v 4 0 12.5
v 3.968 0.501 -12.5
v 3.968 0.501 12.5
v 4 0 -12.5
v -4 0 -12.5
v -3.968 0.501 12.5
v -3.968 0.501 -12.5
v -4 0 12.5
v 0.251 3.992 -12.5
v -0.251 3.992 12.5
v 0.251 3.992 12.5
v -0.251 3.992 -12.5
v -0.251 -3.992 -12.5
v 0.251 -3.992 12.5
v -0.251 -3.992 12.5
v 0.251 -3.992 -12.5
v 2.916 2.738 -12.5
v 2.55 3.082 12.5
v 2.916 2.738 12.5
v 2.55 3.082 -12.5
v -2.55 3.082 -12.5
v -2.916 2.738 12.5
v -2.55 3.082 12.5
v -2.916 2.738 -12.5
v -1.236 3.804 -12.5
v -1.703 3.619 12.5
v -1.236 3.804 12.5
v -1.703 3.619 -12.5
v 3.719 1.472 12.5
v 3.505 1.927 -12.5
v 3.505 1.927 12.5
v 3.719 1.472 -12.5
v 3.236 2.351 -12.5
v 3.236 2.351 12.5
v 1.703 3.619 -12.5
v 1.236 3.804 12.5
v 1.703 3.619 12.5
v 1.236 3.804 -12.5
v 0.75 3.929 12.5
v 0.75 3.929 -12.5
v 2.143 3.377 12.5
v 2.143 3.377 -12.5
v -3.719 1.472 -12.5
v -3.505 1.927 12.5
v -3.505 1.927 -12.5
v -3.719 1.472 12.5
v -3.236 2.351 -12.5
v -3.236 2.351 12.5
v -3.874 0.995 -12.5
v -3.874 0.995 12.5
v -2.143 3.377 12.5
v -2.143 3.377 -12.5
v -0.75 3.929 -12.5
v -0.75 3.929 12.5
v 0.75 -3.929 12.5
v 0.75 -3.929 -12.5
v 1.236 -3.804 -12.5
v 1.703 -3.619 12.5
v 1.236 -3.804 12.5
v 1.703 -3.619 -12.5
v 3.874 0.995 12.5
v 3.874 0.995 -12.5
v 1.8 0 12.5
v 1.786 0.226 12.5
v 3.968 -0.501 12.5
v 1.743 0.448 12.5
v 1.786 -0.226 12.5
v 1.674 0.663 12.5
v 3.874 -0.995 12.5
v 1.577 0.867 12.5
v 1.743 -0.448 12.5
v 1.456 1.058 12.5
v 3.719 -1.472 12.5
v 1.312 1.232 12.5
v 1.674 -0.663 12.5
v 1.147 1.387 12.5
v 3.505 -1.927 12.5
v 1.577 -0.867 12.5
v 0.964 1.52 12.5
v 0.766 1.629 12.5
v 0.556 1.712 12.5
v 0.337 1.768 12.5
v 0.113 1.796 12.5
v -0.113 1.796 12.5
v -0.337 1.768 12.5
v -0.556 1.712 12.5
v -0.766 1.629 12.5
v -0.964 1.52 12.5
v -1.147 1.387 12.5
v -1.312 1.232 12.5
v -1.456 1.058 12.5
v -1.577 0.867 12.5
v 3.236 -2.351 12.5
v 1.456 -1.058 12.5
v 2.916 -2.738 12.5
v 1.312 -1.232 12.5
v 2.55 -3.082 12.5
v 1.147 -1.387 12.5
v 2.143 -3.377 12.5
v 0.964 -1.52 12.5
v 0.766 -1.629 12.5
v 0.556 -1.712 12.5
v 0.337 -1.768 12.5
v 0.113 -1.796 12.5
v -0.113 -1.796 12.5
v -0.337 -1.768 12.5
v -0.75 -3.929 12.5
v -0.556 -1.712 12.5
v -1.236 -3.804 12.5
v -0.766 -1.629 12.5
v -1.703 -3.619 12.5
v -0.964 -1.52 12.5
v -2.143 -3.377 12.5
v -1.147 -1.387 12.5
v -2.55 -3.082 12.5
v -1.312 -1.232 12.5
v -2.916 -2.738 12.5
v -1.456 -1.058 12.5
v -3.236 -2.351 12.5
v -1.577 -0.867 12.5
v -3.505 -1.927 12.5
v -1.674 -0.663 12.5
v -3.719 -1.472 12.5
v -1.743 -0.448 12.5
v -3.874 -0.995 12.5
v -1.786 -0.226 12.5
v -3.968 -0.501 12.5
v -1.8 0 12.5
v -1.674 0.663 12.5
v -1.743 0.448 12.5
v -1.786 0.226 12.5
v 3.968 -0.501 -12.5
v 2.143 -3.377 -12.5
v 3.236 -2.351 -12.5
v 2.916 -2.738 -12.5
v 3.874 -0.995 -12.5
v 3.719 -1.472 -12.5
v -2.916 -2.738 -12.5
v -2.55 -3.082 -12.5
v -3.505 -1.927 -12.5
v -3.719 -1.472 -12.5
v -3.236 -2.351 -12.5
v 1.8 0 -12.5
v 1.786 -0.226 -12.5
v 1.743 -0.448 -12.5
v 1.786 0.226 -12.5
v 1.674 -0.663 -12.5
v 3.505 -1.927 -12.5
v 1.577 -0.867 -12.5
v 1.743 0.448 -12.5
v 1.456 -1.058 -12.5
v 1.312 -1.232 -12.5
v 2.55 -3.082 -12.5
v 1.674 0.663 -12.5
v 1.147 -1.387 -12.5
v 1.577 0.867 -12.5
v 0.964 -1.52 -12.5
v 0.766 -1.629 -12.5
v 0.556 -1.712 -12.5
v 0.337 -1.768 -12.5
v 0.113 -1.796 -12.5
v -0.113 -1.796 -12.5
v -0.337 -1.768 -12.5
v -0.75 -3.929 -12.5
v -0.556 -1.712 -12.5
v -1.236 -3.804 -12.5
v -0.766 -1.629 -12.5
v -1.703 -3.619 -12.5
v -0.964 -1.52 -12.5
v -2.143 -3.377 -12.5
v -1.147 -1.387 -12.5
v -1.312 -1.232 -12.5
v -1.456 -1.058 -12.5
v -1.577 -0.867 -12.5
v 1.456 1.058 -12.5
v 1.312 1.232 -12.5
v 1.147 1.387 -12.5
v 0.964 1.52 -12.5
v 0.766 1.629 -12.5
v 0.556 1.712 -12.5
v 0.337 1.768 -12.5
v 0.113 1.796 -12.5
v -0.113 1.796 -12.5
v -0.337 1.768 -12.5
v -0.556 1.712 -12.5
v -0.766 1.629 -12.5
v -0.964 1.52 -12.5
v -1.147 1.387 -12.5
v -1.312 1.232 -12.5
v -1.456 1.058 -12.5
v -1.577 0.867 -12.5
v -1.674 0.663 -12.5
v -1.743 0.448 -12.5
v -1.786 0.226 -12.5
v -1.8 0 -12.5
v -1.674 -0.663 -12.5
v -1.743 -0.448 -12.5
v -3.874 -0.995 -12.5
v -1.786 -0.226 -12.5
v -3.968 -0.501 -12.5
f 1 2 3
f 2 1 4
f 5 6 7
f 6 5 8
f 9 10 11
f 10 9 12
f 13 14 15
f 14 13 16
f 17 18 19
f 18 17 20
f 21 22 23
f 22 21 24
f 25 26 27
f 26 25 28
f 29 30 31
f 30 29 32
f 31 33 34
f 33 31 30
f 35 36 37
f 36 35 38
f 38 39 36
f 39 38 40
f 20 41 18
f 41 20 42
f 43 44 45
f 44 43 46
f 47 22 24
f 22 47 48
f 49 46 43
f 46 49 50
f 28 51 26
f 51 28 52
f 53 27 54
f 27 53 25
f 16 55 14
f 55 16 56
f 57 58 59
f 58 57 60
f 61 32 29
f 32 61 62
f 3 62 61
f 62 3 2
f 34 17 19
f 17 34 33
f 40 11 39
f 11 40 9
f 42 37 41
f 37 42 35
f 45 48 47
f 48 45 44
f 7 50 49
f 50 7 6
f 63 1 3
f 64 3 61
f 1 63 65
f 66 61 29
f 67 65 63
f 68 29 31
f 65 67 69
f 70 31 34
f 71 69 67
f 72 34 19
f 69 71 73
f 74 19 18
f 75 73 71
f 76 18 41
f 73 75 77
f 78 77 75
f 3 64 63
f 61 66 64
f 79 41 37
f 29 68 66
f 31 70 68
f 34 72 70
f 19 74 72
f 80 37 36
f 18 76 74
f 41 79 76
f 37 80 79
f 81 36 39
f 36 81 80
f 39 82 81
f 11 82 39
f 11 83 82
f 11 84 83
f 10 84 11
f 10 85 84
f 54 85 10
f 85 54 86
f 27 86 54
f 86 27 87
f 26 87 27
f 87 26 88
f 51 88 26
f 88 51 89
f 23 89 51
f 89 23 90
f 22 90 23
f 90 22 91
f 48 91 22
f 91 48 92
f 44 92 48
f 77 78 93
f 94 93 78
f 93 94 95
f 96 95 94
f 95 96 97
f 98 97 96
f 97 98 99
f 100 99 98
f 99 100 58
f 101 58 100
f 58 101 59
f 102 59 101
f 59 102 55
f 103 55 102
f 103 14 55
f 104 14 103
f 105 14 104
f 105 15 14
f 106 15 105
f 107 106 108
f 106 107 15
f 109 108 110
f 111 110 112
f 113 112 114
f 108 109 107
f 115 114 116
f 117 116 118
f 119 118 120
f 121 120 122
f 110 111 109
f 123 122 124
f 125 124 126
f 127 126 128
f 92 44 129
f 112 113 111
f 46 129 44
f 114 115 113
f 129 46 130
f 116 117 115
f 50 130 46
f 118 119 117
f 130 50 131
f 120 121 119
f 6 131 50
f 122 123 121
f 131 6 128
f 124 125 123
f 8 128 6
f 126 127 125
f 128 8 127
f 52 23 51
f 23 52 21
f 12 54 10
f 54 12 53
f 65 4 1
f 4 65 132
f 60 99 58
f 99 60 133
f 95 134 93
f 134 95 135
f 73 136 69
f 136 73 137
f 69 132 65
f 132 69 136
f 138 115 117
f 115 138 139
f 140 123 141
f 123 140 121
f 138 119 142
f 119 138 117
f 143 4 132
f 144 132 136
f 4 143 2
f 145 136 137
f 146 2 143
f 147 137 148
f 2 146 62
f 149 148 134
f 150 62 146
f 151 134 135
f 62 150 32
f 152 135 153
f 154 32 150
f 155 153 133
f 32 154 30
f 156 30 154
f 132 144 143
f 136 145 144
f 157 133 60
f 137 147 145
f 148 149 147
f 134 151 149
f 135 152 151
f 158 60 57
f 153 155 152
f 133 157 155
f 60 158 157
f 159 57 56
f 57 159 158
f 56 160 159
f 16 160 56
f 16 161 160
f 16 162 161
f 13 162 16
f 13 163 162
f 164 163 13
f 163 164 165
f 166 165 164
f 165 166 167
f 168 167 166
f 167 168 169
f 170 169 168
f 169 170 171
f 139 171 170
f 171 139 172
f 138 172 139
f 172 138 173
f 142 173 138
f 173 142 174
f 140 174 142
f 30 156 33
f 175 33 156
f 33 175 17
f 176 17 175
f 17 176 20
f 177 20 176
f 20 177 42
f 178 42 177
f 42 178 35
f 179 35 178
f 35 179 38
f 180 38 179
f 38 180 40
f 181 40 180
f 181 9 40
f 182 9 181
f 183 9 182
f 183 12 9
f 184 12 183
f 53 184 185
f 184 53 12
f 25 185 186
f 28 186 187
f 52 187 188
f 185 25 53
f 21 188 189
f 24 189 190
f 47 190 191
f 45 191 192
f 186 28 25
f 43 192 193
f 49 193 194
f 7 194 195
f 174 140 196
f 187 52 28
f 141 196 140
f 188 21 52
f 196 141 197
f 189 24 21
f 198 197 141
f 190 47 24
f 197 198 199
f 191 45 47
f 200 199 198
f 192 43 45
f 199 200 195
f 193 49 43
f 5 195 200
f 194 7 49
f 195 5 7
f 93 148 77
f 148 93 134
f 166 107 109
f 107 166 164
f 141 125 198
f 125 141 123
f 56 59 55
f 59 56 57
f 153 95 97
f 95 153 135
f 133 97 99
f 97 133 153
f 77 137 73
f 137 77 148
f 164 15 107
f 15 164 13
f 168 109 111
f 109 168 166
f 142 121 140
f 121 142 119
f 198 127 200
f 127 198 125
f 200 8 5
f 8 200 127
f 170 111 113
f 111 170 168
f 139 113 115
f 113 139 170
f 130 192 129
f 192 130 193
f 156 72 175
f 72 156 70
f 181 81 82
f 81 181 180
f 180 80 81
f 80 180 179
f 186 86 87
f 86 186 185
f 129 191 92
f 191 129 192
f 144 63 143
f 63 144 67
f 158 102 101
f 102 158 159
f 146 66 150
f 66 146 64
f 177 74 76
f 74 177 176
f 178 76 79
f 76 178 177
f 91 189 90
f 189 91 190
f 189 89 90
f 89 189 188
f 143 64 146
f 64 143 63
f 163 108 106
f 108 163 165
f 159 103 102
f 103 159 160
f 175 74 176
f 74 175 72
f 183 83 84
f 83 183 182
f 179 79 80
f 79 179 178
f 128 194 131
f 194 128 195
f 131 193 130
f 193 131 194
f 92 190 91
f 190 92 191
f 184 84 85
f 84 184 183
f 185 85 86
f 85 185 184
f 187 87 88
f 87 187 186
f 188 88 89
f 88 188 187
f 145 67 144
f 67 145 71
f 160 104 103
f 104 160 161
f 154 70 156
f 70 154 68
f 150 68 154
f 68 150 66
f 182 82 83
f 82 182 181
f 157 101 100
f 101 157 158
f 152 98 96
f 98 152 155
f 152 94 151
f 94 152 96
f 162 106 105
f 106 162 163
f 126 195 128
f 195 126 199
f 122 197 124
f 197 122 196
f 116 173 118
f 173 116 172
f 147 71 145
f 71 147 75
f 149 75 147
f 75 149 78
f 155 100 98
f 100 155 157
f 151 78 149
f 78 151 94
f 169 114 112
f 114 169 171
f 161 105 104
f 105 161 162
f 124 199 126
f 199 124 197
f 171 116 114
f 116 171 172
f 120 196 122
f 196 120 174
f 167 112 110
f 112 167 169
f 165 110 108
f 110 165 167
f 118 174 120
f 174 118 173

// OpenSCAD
$fn = 50;


difference() {
	union() {
		translate(v = [0, 0, -12.5000000000]) {
			cylinder(h = 25, r = 4.0000000000);
		}
	}
	union() {
		translate(v = [0, 0, -100.0000000000]) {
			cylinder(h = 200, r = 1.8000000000);
		}
	}
}
